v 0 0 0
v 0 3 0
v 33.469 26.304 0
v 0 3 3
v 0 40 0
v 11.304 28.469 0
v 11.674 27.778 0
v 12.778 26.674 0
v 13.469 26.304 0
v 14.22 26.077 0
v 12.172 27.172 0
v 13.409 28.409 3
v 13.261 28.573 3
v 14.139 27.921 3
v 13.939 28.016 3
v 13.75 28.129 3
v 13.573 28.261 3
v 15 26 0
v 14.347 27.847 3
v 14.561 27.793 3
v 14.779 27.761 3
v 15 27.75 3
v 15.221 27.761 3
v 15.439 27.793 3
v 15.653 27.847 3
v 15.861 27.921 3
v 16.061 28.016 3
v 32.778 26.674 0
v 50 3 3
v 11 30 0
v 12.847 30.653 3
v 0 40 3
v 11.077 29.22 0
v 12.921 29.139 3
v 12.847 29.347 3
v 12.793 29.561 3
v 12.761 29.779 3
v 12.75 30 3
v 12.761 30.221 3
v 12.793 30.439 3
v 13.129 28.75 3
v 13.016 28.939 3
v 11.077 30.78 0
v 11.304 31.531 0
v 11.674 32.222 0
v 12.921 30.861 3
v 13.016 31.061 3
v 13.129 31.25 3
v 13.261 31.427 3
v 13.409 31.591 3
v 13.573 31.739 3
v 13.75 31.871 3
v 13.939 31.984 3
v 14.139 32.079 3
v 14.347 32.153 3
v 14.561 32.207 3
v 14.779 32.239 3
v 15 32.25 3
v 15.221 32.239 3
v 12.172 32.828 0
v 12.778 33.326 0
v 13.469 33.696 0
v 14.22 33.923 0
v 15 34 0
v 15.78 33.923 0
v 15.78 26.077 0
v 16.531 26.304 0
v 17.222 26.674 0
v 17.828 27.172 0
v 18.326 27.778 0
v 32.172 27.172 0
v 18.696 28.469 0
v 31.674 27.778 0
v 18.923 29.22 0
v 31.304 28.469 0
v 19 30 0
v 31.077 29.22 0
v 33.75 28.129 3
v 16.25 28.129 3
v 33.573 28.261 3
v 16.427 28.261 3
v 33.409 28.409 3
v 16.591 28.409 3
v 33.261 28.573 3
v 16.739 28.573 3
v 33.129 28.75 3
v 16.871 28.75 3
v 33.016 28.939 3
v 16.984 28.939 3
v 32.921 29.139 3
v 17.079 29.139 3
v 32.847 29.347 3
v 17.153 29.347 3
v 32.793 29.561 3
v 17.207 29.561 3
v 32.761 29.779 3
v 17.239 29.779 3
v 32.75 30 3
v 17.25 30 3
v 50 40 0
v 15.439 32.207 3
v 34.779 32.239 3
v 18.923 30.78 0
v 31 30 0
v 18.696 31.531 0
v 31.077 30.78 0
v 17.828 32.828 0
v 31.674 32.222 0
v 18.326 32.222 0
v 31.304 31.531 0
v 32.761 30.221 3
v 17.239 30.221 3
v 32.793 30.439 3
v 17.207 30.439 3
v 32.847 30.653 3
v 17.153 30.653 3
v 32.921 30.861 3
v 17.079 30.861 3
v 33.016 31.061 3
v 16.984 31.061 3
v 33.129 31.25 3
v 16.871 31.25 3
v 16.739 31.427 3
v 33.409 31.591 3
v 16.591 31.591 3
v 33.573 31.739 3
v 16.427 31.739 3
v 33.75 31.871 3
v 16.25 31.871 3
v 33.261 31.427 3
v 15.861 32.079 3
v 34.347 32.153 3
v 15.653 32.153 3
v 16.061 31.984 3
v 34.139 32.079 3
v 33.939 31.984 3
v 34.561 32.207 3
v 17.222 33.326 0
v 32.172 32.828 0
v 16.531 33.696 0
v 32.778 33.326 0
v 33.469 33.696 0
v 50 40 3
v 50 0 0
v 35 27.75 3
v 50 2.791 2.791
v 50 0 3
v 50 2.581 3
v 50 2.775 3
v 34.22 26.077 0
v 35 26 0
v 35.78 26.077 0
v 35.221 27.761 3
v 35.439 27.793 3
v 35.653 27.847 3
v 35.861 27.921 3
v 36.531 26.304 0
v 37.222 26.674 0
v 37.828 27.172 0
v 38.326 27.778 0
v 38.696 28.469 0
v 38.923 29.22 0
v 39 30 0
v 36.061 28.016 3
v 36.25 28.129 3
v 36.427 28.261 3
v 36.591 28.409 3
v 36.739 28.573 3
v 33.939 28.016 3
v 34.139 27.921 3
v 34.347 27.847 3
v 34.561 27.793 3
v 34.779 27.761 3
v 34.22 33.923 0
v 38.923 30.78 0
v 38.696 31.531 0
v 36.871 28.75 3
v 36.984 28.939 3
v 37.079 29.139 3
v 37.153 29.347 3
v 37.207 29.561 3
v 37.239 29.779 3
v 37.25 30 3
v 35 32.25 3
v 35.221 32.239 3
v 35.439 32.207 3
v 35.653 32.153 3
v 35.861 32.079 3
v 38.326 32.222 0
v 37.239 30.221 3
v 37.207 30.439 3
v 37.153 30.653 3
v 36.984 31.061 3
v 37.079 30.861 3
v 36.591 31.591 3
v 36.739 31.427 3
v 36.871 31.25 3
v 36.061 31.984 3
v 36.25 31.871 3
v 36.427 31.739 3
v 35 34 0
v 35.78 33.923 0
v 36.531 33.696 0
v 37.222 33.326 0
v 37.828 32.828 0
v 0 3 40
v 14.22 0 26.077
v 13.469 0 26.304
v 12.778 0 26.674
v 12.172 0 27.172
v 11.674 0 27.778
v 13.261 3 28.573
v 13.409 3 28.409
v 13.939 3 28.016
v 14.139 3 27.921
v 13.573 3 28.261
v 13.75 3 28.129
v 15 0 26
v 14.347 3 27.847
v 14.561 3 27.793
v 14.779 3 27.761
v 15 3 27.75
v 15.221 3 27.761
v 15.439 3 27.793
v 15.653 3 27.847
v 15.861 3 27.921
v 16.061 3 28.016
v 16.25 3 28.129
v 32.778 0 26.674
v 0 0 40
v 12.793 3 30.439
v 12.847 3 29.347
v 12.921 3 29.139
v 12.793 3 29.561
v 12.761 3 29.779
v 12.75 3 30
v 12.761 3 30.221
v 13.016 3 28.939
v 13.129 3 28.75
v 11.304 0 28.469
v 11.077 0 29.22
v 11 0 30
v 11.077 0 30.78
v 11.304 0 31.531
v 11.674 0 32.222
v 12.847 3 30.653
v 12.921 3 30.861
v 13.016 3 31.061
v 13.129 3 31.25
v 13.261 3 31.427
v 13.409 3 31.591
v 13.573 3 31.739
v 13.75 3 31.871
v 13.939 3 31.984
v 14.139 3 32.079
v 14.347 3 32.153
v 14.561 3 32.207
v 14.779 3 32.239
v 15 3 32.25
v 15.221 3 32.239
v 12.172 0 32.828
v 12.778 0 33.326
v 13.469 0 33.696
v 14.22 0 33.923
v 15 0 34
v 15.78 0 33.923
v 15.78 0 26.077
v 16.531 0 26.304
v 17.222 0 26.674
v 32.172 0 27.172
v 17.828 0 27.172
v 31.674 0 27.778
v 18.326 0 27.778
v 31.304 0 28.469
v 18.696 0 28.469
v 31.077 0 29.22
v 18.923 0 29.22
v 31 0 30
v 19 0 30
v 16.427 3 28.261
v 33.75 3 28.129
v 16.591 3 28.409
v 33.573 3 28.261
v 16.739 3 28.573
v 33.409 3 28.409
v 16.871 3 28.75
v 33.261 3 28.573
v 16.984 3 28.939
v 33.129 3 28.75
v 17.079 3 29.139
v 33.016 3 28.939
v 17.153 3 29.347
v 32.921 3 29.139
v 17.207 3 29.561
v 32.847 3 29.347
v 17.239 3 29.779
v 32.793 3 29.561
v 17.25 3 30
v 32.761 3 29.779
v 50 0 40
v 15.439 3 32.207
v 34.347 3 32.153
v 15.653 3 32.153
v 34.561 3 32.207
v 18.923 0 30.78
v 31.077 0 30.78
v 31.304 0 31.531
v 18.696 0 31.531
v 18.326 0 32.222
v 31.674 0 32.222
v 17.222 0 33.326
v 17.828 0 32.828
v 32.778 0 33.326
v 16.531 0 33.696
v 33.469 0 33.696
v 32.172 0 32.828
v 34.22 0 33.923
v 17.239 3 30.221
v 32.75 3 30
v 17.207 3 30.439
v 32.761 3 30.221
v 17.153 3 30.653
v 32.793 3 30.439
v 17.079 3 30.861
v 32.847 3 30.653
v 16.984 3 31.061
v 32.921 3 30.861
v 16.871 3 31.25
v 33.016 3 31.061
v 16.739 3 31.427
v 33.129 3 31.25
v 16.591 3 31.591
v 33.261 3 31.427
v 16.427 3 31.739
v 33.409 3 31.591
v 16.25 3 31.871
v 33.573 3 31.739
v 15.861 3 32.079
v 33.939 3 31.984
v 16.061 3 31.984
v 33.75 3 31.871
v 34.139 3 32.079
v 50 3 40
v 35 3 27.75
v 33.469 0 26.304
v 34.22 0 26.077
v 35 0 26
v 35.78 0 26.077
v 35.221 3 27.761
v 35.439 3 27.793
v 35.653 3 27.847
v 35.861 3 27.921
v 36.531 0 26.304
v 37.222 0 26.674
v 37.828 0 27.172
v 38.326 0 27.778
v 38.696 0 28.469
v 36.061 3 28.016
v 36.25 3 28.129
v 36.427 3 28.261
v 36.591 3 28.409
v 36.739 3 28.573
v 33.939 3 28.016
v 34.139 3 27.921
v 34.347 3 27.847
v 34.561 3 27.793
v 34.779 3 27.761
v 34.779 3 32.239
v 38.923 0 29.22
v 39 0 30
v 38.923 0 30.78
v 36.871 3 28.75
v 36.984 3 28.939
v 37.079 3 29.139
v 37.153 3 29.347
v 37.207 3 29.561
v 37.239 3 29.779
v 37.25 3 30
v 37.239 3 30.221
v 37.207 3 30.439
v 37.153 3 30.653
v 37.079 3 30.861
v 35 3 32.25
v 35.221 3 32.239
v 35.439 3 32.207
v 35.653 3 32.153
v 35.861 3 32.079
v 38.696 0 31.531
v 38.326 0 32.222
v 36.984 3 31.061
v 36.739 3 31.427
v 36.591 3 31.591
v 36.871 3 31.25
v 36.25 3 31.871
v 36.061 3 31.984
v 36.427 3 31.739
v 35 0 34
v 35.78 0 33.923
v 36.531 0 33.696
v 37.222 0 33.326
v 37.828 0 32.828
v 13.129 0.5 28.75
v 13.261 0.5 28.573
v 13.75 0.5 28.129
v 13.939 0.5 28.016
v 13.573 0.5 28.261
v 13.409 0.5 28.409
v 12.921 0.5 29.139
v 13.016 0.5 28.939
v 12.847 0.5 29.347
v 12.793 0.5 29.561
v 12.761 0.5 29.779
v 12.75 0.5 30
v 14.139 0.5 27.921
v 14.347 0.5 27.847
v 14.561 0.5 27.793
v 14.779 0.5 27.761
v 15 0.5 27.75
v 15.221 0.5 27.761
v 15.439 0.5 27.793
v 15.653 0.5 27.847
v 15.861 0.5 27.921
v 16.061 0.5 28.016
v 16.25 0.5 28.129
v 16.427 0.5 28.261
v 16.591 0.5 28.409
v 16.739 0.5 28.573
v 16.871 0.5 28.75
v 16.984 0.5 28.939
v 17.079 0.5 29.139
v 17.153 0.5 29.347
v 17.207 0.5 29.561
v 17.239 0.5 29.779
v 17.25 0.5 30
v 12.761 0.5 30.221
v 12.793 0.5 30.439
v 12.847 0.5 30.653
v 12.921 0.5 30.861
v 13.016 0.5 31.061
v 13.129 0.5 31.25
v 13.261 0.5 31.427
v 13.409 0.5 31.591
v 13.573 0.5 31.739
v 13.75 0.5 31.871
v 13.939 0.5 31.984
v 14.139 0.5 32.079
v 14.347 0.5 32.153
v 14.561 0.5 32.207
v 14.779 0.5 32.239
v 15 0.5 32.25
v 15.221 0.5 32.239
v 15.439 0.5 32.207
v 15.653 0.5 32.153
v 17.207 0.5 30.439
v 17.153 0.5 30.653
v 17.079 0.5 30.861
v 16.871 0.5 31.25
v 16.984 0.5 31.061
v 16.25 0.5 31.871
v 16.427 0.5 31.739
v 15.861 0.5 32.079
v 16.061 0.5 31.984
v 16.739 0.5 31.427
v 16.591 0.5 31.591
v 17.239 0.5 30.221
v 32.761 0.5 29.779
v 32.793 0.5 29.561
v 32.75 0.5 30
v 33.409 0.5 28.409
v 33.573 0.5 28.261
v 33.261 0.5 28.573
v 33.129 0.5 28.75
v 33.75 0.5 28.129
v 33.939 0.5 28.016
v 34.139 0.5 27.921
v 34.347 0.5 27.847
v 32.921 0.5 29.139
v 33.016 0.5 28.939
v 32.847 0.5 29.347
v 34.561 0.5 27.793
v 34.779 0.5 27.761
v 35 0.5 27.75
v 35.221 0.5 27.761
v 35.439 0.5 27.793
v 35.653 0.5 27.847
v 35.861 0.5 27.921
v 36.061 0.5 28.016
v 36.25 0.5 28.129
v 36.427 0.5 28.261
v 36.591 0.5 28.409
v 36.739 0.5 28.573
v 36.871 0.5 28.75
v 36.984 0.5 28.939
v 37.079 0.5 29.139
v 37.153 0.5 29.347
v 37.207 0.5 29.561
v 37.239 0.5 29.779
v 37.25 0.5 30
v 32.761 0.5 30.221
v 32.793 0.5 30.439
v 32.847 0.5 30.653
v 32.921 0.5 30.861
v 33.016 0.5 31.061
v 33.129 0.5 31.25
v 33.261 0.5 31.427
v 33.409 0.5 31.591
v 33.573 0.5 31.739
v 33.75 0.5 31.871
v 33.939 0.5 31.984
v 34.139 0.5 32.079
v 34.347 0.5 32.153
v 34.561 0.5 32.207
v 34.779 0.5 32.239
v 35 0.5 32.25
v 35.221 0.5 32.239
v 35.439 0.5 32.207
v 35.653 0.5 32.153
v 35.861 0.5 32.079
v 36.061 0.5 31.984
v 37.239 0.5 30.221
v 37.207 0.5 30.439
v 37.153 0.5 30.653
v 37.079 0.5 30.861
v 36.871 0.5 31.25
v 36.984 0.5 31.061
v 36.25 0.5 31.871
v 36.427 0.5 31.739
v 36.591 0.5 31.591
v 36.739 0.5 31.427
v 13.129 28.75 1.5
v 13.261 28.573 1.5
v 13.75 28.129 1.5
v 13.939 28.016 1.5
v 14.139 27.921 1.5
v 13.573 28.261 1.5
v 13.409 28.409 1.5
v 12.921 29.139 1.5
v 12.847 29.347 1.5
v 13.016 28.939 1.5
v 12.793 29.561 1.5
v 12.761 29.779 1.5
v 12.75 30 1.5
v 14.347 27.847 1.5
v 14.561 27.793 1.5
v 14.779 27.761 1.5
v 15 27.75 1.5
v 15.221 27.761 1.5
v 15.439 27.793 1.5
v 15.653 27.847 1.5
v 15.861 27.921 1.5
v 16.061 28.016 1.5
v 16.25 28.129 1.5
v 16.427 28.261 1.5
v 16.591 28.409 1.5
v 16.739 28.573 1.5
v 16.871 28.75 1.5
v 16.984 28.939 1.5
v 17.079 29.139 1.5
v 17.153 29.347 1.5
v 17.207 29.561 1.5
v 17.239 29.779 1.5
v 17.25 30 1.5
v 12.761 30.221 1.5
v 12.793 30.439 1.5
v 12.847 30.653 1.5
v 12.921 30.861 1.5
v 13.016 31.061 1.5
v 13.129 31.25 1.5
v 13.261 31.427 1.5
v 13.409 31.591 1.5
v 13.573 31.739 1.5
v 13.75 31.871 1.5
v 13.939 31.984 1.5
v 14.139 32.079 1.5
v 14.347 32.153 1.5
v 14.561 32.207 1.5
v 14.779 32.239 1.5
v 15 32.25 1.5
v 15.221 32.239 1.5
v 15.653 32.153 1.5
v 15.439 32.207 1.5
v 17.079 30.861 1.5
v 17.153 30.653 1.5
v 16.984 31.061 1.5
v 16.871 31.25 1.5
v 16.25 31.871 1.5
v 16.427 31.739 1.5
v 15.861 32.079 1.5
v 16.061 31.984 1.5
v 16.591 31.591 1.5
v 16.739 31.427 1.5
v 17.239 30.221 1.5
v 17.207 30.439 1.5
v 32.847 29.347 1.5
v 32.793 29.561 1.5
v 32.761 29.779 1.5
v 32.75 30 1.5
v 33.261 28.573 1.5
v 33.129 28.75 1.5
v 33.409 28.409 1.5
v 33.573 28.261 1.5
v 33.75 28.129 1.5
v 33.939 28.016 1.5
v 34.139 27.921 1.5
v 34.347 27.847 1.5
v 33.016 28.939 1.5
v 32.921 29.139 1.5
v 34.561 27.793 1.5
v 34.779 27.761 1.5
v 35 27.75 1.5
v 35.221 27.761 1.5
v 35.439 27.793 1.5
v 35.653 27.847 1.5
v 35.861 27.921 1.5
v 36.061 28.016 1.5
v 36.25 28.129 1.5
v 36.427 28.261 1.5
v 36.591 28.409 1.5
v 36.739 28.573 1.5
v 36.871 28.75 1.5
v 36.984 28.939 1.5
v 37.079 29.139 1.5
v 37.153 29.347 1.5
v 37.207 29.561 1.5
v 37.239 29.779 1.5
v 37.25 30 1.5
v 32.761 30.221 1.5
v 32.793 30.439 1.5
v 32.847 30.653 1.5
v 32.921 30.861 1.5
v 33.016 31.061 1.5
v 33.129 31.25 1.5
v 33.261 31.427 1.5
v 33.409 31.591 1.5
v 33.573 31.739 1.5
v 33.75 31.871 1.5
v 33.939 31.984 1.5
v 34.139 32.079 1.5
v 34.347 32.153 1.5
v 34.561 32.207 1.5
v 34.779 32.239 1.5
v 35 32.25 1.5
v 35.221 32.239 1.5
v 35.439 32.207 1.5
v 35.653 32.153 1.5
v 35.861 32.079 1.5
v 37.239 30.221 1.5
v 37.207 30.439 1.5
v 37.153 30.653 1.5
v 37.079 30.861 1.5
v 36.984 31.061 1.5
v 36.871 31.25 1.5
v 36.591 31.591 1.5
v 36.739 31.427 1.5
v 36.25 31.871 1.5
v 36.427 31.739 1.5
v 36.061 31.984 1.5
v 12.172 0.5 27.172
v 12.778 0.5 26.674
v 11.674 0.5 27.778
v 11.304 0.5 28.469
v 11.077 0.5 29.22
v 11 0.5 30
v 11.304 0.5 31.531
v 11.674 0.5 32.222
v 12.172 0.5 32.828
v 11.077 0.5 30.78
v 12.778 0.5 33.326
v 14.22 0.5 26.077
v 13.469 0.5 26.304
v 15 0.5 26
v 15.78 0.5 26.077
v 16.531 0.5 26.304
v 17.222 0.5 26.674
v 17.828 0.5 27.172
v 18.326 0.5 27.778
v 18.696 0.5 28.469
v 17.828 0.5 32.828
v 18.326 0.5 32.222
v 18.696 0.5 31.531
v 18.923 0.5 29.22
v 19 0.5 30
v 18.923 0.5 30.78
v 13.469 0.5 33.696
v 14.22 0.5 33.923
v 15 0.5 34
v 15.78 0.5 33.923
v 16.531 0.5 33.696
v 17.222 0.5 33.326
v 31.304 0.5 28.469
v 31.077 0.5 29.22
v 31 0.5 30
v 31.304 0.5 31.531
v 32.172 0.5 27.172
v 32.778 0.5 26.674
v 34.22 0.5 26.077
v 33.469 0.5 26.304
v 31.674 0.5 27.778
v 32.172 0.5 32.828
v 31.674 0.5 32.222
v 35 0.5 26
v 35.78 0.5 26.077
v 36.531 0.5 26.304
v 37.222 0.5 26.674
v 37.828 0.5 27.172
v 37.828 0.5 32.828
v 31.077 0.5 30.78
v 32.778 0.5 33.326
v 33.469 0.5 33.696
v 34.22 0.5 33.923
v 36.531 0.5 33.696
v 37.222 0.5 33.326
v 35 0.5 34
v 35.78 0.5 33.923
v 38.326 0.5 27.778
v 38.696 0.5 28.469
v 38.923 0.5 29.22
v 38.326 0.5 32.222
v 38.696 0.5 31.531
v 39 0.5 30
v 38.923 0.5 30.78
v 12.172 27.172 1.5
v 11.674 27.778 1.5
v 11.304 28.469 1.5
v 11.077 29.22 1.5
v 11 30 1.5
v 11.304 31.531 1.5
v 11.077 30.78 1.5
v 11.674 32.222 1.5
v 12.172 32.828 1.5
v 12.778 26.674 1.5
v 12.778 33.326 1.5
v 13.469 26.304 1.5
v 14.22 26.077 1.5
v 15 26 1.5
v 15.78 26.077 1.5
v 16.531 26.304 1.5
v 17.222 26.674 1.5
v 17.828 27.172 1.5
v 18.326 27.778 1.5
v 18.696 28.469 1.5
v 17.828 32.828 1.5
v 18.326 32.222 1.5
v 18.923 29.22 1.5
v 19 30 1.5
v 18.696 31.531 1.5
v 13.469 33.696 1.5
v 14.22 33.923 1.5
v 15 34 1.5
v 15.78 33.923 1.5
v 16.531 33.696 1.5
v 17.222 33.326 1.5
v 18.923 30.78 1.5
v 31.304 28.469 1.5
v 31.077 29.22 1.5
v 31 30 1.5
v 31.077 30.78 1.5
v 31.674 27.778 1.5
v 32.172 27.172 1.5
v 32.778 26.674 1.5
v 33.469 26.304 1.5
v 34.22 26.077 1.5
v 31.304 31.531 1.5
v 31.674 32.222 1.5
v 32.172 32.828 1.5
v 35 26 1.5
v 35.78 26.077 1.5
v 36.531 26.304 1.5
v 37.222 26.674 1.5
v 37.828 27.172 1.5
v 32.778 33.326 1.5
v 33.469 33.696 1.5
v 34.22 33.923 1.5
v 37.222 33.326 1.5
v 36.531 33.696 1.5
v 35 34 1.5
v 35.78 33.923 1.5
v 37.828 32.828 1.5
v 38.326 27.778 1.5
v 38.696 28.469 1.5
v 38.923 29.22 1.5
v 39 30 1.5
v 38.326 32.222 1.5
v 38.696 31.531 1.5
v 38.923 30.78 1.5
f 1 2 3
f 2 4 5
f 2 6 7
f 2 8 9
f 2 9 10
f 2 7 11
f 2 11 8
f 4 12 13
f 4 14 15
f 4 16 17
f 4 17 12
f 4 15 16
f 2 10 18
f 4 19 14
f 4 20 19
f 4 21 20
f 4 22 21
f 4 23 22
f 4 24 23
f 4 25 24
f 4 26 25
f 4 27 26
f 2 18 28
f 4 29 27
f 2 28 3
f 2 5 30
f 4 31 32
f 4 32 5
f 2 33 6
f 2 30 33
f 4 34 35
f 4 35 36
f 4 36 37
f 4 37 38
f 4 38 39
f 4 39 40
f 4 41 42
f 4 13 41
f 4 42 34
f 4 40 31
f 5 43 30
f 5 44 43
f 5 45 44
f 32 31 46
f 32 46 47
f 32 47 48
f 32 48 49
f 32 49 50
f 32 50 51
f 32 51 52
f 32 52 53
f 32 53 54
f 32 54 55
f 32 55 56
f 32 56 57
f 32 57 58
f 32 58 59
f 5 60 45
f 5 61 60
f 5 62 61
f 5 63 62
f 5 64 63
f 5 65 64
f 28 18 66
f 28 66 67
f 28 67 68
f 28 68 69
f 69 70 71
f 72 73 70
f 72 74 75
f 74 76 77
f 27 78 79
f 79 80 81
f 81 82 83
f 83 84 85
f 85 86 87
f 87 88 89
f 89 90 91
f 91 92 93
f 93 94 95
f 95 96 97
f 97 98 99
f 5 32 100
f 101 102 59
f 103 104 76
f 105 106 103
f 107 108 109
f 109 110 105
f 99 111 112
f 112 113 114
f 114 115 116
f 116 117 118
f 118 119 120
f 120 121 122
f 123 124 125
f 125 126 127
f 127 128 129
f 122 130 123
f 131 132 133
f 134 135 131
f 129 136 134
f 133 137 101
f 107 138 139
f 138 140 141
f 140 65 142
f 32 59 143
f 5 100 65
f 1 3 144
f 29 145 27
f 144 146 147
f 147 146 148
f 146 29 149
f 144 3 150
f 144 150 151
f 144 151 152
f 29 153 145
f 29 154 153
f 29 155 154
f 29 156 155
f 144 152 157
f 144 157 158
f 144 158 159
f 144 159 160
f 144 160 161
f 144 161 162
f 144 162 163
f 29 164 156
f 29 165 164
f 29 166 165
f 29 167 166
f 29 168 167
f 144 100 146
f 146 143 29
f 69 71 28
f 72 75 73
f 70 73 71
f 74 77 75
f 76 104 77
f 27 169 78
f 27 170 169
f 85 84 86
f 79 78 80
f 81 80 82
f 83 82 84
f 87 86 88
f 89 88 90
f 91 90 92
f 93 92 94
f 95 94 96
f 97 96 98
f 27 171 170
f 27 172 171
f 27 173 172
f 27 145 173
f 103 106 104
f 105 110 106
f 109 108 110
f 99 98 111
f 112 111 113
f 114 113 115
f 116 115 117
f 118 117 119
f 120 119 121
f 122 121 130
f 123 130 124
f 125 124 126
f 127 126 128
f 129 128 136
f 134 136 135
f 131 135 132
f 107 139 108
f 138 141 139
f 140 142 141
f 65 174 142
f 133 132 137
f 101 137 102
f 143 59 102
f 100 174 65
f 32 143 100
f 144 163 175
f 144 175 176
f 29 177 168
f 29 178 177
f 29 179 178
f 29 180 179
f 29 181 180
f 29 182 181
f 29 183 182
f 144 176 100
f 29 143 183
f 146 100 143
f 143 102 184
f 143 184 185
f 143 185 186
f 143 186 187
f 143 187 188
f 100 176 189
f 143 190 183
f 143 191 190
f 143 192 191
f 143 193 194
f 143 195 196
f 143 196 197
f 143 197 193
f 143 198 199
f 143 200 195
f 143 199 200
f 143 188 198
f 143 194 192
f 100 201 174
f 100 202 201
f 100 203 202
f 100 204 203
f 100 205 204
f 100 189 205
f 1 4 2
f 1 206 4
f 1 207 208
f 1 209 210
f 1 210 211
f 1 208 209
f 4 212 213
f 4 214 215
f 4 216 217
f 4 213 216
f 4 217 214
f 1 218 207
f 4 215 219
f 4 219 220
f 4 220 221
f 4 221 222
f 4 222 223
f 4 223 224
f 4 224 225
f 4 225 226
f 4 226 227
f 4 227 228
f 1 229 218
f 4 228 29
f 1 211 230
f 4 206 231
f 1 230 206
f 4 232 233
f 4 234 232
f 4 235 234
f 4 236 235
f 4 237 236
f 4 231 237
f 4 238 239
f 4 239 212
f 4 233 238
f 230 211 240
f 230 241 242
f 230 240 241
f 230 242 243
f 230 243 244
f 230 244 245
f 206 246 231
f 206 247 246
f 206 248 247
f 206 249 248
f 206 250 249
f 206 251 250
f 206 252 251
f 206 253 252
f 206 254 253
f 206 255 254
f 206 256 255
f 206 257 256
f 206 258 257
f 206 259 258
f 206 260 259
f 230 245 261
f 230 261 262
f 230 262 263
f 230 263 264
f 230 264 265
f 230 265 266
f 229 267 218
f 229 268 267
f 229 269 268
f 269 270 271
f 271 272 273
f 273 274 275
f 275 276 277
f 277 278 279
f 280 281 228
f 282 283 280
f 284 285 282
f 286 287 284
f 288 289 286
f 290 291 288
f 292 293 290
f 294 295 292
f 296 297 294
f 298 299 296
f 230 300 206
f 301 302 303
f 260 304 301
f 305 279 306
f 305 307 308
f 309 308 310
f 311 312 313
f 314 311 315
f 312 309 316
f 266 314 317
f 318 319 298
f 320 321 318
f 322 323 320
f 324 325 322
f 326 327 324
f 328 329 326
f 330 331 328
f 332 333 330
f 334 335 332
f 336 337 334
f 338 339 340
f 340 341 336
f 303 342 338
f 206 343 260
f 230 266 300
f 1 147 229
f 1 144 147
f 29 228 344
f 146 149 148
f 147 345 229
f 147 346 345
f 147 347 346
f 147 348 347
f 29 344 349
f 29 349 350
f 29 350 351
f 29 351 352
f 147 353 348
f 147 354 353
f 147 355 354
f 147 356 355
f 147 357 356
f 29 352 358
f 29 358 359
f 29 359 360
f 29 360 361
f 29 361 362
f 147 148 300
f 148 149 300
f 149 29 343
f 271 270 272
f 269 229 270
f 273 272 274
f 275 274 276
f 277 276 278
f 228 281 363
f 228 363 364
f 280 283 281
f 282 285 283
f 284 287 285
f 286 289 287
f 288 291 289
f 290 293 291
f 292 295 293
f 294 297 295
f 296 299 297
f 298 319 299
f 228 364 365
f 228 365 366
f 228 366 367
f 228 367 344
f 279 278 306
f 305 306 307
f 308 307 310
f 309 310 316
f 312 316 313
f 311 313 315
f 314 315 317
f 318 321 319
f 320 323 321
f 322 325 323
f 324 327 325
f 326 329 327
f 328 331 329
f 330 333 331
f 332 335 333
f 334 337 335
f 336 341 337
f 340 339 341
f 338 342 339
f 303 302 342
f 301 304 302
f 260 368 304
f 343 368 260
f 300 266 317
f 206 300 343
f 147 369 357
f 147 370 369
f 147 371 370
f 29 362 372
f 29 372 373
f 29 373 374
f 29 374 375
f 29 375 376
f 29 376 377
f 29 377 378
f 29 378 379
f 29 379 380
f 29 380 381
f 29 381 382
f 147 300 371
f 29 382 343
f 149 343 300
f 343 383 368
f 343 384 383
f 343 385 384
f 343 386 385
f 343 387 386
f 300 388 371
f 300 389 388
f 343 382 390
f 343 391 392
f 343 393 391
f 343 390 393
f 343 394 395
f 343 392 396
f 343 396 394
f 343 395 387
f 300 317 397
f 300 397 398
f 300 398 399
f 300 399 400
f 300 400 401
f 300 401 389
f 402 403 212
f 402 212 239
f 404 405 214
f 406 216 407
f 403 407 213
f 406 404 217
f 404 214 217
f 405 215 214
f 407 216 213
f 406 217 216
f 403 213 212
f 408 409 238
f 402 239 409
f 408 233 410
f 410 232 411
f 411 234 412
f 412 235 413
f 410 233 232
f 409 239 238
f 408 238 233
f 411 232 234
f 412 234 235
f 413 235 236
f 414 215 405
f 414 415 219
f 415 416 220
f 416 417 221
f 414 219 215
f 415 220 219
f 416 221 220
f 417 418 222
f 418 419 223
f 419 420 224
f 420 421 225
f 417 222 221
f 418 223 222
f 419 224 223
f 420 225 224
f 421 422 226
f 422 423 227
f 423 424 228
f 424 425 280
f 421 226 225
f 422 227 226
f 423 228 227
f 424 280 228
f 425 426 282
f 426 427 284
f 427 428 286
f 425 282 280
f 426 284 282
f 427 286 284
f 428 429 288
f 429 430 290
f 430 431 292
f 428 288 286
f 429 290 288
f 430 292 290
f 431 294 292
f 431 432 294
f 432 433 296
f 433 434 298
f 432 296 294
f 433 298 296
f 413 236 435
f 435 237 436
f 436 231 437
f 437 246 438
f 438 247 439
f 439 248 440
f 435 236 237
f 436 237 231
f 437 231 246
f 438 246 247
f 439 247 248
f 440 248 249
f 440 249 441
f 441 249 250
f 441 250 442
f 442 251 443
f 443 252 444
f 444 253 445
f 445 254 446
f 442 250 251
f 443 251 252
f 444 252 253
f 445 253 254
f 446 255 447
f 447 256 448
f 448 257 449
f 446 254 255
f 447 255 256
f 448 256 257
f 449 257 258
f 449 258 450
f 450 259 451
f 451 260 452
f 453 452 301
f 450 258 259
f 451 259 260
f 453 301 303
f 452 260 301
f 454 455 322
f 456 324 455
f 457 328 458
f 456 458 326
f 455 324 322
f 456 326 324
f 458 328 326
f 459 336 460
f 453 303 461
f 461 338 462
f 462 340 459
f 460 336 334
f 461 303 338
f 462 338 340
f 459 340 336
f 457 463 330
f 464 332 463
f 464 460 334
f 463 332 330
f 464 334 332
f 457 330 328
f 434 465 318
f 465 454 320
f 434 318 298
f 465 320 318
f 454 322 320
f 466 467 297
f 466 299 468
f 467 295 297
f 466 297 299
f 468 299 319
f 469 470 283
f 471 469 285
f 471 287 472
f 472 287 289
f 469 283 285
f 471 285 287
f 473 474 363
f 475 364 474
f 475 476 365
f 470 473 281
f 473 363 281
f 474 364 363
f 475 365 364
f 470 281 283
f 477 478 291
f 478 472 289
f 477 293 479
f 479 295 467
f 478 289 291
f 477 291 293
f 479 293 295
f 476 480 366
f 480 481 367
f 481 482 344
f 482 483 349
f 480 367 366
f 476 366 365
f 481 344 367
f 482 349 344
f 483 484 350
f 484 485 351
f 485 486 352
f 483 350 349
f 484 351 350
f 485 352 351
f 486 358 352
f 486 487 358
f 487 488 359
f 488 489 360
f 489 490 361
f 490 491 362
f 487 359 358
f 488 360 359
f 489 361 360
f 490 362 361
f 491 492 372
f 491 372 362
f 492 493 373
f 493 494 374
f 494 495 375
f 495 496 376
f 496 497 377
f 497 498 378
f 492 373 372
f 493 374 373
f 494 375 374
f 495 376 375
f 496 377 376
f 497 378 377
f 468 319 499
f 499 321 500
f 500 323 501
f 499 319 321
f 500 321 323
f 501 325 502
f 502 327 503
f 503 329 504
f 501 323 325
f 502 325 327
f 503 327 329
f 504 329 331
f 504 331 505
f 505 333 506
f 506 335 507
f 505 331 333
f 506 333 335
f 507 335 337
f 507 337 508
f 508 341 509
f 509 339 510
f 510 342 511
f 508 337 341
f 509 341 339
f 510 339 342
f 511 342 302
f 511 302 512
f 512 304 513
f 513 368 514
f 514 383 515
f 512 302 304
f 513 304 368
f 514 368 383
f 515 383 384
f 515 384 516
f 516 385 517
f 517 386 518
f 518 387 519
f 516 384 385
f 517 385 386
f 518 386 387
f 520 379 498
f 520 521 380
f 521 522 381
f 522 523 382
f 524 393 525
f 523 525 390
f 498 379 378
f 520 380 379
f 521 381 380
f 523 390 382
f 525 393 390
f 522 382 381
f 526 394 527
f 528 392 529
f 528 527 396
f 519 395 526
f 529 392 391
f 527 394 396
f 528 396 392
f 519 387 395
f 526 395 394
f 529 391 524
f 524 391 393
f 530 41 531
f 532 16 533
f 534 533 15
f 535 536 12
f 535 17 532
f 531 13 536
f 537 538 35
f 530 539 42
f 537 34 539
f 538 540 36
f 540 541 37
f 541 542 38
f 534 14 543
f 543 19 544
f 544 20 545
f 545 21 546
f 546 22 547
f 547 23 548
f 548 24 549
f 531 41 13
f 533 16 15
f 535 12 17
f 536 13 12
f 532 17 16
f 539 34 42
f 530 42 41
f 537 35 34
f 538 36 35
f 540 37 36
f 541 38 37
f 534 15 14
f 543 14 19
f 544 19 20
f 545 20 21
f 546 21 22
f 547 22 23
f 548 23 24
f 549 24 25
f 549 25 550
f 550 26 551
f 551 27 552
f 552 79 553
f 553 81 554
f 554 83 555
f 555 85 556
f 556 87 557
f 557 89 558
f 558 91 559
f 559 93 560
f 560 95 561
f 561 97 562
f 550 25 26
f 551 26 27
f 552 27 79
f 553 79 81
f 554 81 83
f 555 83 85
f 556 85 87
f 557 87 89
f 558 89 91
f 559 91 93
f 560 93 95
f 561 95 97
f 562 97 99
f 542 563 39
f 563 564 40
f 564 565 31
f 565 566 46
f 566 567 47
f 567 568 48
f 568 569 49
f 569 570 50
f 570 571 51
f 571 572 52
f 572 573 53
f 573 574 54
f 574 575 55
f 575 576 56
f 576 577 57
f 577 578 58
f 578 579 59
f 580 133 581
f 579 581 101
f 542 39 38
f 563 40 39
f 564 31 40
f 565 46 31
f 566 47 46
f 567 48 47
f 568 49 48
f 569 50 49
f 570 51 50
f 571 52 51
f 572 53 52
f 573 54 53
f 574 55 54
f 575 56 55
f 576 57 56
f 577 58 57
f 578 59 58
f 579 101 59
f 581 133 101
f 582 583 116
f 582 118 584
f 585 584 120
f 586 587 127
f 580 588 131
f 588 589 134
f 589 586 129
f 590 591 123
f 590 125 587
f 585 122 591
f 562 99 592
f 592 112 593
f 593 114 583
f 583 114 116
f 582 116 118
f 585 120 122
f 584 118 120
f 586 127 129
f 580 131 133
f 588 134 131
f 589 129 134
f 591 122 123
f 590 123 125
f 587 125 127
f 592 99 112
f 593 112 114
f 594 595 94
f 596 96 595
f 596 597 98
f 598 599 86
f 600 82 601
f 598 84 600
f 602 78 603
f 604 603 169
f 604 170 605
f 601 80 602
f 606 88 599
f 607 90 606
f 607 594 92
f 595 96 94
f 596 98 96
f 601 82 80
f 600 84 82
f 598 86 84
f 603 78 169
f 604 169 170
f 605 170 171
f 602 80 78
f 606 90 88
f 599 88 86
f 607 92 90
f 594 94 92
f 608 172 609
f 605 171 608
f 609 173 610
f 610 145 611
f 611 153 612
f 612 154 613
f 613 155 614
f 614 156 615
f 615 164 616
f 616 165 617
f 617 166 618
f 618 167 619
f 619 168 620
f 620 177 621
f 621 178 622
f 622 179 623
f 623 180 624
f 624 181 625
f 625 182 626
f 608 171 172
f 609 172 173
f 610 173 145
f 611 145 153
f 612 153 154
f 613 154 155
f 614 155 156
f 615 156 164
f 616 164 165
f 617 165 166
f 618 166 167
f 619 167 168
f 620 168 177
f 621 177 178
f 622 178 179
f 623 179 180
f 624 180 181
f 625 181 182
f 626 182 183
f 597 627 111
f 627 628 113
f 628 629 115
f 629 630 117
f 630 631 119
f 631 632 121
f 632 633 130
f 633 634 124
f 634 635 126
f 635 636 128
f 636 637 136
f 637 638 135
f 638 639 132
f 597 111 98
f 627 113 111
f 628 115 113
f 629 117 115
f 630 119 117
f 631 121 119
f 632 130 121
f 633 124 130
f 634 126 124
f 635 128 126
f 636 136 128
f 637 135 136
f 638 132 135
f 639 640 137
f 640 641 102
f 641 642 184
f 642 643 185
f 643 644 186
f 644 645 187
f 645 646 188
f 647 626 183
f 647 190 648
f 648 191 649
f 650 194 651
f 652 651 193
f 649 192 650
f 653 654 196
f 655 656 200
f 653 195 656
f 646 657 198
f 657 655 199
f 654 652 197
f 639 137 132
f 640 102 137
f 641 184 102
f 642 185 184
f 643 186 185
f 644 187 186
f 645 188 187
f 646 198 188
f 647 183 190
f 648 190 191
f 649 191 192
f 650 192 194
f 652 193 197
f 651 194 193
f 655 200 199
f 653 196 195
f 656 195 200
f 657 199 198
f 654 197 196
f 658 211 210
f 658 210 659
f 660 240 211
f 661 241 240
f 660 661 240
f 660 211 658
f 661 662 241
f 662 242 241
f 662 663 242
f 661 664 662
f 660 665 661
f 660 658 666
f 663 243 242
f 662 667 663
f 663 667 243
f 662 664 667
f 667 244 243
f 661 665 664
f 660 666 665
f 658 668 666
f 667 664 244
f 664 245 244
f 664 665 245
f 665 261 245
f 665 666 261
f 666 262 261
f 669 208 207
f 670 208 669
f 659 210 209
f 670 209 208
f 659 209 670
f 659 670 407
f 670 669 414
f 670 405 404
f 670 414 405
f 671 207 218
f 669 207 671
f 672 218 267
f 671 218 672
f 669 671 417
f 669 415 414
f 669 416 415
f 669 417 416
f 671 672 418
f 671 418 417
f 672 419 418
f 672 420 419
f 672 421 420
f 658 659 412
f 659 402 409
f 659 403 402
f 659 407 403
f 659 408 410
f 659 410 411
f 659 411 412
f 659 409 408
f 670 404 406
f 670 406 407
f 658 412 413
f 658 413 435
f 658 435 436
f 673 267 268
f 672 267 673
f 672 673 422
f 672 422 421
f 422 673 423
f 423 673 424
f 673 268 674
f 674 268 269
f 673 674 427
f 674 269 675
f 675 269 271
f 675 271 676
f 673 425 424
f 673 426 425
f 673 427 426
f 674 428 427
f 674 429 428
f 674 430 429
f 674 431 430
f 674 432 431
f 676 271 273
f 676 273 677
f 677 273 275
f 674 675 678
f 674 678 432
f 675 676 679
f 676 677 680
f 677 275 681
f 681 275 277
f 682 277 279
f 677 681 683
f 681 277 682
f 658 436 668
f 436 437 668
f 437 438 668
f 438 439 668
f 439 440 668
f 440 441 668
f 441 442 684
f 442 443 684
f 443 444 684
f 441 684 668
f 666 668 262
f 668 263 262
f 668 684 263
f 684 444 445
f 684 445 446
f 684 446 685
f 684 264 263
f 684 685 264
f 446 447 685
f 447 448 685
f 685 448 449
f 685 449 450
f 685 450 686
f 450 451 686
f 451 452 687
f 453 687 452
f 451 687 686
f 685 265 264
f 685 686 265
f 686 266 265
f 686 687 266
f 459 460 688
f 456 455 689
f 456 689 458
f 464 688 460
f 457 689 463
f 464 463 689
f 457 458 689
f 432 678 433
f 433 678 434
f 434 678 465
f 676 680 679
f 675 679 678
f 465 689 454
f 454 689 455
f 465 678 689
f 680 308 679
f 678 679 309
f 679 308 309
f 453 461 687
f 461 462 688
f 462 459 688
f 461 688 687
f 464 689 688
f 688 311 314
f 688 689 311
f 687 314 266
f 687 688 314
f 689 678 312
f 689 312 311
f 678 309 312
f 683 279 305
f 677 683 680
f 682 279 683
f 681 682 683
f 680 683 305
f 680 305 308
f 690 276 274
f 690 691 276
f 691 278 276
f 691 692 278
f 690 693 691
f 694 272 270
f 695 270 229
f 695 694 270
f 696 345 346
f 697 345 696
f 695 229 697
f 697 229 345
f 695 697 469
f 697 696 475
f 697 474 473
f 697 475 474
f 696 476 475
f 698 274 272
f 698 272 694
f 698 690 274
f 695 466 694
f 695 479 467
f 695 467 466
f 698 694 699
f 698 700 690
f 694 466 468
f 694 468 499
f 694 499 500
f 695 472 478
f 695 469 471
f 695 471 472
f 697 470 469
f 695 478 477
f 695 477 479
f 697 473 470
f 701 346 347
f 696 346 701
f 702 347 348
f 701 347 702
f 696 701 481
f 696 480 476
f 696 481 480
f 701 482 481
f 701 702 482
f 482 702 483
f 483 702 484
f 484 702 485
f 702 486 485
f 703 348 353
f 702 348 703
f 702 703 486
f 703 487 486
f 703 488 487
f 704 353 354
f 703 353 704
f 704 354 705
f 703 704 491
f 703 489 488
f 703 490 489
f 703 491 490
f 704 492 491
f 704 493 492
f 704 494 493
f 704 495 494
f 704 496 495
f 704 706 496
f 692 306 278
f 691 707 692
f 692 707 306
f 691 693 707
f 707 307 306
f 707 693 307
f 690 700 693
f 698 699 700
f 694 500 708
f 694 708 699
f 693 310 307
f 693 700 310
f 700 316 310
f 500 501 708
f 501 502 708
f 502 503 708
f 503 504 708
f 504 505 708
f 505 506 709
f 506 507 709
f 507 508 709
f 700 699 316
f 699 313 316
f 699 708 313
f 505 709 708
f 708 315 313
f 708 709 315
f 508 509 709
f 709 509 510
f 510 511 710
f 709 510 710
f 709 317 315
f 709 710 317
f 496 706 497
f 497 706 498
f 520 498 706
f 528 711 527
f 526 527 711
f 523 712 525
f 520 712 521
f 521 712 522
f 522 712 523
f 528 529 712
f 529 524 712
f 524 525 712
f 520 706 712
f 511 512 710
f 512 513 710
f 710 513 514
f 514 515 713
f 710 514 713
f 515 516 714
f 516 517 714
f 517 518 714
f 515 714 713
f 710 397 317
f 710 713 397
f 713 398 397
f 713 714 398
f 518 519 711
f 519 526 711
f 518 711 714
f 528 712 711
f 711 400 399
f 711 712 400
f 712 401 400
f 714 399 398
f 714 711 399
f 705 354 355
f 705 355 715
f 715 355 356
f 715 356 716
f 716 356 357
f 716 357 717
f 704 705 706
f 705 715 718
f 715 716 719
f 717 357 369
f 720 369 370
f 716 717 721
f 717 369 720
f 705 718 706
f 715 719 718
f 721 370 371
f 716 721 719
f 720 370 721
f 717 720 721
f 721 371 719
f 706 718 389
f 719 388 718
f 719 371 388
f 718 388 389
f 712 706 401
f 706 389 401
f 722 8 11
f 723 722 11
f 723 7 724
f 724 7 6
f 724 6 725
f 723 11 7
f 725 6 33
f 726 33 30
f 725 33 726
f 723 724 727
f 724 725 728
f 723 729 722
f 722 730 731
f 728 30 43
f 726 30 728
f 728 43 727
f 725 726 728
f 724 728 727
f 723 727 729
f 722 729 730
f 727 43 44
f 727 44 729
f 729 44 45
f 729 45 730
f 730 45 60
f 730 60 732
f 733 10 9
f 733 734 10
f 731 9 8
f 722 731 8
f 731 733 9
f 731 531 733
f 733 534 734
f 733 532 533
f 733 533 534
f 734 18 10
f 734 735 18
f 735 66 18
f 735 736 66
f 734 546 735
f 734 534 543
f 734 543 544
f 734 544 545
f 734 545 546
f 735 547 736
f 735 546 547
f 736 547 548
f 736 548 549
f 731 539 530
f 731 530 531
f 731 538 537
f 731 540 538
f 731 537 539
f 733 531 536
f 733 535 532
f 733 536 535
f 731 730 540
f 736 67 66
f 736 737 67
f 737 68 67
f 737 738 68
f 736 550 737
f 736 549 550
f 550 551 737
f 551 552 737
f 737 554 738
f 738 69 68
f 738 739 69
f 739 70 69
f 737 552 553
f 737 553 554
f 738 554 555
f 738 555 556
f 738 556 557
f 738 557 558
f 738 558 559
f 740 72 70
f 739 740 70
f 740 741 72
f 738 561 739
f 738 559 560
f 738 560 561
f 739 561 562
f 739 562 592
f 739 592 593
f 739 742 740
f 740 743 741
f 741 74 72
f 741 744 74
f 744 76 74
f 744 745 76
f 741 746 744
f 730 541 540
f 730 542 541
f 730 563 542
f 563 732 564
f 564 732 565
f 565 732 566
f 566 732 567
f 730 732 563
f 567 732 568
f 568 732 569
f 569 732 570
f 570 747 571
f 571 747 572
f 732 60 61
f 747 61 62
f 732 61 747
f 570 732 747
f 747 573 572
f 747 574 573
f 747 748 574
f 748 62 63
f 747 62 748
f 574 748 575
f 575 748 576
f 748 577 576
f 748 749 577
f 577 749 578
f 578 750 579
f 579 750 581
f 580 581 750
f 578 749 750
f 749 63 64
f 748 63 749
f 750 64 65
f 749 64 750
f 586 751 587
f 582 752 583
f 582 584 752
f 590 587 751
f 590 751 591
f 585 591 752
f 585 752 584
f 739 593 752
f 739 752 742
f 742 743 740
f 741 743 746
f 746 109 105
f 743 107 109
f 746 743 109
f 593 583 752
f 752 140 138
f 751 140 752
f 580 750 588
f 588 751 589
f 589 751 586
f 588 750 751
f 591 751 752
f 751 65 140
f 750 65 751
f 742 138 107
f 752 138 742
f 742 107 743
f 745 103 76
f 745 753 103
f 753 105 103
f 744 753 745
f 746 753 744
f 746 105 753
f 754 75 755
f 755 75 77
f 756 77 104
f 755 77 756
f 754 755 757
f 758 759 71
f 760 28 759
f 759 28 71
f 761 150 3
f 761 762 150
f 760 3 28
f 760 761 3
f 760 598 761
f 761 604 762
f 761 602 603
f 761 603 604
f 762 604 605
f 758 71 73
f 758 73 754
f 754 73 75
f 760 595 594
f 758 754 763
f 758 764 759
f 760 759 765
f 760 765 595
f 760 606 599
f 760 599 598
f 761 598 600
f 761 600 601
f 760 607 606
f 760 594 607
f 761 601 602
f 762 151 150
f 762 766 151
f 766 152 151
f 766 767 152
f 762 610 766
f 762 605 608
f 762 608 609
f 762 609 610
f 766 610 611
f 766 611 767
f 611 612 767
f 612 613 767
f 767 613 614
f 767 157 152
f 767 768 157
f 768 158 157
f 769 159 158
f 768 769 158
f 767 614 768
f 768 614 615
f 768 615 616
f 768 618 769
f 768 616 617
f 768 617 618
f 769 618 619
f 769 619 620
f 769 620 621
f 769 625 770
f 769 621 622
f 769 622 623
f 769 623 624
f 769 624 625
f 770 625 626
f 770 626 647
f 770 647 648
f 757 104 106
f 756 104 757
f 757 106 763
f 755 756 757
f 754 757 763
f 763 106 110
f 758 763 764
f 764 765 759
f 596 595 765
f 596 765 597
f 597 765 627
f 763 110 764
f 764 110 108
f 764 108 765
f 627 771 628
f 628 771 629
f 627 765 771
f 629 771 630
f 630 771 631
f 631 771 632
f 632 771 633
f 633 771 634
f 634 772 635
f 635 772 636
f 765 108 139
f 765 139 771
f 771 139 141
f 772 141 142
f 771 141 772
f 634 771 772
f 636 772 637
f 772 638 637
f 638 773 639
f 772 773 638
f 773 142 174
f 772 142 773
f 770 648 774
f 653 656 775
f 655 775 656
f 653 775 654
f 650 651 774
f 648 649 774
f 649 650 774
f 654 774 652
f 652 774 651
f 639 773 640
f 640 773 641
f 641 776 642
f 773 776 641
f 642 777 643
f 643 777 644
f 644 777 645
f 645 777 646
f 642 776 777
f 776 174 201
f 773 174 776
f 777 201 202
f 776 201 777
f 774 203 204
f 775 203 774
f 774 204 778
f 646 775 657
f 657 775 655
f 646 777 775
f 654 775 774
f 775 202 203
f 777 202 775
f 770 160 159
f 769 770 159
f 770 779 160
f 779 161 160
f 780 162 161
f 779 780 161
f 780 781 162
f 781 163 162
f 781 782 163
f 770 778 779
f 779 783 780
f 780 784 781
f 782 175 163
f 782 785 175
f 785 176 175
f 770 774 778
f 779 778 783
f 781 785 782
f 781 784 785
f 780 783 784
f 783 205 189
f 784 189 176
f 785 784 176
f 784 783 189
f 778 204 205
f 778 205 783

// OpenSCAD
// パラメータ設定
width = 50;
depth = 40;
height = 40;
thickness = 3;

hole_dia = 4.5;
cs_dia = 8.0;
cs_depth = 2.0;

// 皿穴モジュール
module countersunk_hole() {
    union() {
        // 貫通穴
        cylinder(d = hole_dia, h = thickness * 3, center = true);
        // 皿座面（板の厚みに対して片側に配置）
        translate([0, 0, thickness/2 - cs_depth/2])
            cylinder(d = cs_dia, h = cs_depth, center = true, $fn = 32);
    }
}

module l_bracket() {
    difference() {
        union() {
            // 水平面 (Y方向に40mm)
            cube([width, depth, thickness]);
            // 垂直面 (Z方向に40mm)
            cube([width, thickness, height]);
        }

        // 水平面の穴
        // 縁(Y=40)から10mm内側なのでY=30、左右対称に配置
        for (x = [-10, 10]) {
            translate([width / 2 + x, 30, 0])
                countersunk_hole();
        }

        // 垂直面の穴
        // 縁(Z=40)から10mm内側なのでZ=30、左右対称に配置
        for (x = [-10, 10]) {
            translate([width / 2 + x, 0, 30])
                rotate([90, 0, 0])
                    countersunk_hole();
        }
    }
}

$fn = 64;
l_bracket();
